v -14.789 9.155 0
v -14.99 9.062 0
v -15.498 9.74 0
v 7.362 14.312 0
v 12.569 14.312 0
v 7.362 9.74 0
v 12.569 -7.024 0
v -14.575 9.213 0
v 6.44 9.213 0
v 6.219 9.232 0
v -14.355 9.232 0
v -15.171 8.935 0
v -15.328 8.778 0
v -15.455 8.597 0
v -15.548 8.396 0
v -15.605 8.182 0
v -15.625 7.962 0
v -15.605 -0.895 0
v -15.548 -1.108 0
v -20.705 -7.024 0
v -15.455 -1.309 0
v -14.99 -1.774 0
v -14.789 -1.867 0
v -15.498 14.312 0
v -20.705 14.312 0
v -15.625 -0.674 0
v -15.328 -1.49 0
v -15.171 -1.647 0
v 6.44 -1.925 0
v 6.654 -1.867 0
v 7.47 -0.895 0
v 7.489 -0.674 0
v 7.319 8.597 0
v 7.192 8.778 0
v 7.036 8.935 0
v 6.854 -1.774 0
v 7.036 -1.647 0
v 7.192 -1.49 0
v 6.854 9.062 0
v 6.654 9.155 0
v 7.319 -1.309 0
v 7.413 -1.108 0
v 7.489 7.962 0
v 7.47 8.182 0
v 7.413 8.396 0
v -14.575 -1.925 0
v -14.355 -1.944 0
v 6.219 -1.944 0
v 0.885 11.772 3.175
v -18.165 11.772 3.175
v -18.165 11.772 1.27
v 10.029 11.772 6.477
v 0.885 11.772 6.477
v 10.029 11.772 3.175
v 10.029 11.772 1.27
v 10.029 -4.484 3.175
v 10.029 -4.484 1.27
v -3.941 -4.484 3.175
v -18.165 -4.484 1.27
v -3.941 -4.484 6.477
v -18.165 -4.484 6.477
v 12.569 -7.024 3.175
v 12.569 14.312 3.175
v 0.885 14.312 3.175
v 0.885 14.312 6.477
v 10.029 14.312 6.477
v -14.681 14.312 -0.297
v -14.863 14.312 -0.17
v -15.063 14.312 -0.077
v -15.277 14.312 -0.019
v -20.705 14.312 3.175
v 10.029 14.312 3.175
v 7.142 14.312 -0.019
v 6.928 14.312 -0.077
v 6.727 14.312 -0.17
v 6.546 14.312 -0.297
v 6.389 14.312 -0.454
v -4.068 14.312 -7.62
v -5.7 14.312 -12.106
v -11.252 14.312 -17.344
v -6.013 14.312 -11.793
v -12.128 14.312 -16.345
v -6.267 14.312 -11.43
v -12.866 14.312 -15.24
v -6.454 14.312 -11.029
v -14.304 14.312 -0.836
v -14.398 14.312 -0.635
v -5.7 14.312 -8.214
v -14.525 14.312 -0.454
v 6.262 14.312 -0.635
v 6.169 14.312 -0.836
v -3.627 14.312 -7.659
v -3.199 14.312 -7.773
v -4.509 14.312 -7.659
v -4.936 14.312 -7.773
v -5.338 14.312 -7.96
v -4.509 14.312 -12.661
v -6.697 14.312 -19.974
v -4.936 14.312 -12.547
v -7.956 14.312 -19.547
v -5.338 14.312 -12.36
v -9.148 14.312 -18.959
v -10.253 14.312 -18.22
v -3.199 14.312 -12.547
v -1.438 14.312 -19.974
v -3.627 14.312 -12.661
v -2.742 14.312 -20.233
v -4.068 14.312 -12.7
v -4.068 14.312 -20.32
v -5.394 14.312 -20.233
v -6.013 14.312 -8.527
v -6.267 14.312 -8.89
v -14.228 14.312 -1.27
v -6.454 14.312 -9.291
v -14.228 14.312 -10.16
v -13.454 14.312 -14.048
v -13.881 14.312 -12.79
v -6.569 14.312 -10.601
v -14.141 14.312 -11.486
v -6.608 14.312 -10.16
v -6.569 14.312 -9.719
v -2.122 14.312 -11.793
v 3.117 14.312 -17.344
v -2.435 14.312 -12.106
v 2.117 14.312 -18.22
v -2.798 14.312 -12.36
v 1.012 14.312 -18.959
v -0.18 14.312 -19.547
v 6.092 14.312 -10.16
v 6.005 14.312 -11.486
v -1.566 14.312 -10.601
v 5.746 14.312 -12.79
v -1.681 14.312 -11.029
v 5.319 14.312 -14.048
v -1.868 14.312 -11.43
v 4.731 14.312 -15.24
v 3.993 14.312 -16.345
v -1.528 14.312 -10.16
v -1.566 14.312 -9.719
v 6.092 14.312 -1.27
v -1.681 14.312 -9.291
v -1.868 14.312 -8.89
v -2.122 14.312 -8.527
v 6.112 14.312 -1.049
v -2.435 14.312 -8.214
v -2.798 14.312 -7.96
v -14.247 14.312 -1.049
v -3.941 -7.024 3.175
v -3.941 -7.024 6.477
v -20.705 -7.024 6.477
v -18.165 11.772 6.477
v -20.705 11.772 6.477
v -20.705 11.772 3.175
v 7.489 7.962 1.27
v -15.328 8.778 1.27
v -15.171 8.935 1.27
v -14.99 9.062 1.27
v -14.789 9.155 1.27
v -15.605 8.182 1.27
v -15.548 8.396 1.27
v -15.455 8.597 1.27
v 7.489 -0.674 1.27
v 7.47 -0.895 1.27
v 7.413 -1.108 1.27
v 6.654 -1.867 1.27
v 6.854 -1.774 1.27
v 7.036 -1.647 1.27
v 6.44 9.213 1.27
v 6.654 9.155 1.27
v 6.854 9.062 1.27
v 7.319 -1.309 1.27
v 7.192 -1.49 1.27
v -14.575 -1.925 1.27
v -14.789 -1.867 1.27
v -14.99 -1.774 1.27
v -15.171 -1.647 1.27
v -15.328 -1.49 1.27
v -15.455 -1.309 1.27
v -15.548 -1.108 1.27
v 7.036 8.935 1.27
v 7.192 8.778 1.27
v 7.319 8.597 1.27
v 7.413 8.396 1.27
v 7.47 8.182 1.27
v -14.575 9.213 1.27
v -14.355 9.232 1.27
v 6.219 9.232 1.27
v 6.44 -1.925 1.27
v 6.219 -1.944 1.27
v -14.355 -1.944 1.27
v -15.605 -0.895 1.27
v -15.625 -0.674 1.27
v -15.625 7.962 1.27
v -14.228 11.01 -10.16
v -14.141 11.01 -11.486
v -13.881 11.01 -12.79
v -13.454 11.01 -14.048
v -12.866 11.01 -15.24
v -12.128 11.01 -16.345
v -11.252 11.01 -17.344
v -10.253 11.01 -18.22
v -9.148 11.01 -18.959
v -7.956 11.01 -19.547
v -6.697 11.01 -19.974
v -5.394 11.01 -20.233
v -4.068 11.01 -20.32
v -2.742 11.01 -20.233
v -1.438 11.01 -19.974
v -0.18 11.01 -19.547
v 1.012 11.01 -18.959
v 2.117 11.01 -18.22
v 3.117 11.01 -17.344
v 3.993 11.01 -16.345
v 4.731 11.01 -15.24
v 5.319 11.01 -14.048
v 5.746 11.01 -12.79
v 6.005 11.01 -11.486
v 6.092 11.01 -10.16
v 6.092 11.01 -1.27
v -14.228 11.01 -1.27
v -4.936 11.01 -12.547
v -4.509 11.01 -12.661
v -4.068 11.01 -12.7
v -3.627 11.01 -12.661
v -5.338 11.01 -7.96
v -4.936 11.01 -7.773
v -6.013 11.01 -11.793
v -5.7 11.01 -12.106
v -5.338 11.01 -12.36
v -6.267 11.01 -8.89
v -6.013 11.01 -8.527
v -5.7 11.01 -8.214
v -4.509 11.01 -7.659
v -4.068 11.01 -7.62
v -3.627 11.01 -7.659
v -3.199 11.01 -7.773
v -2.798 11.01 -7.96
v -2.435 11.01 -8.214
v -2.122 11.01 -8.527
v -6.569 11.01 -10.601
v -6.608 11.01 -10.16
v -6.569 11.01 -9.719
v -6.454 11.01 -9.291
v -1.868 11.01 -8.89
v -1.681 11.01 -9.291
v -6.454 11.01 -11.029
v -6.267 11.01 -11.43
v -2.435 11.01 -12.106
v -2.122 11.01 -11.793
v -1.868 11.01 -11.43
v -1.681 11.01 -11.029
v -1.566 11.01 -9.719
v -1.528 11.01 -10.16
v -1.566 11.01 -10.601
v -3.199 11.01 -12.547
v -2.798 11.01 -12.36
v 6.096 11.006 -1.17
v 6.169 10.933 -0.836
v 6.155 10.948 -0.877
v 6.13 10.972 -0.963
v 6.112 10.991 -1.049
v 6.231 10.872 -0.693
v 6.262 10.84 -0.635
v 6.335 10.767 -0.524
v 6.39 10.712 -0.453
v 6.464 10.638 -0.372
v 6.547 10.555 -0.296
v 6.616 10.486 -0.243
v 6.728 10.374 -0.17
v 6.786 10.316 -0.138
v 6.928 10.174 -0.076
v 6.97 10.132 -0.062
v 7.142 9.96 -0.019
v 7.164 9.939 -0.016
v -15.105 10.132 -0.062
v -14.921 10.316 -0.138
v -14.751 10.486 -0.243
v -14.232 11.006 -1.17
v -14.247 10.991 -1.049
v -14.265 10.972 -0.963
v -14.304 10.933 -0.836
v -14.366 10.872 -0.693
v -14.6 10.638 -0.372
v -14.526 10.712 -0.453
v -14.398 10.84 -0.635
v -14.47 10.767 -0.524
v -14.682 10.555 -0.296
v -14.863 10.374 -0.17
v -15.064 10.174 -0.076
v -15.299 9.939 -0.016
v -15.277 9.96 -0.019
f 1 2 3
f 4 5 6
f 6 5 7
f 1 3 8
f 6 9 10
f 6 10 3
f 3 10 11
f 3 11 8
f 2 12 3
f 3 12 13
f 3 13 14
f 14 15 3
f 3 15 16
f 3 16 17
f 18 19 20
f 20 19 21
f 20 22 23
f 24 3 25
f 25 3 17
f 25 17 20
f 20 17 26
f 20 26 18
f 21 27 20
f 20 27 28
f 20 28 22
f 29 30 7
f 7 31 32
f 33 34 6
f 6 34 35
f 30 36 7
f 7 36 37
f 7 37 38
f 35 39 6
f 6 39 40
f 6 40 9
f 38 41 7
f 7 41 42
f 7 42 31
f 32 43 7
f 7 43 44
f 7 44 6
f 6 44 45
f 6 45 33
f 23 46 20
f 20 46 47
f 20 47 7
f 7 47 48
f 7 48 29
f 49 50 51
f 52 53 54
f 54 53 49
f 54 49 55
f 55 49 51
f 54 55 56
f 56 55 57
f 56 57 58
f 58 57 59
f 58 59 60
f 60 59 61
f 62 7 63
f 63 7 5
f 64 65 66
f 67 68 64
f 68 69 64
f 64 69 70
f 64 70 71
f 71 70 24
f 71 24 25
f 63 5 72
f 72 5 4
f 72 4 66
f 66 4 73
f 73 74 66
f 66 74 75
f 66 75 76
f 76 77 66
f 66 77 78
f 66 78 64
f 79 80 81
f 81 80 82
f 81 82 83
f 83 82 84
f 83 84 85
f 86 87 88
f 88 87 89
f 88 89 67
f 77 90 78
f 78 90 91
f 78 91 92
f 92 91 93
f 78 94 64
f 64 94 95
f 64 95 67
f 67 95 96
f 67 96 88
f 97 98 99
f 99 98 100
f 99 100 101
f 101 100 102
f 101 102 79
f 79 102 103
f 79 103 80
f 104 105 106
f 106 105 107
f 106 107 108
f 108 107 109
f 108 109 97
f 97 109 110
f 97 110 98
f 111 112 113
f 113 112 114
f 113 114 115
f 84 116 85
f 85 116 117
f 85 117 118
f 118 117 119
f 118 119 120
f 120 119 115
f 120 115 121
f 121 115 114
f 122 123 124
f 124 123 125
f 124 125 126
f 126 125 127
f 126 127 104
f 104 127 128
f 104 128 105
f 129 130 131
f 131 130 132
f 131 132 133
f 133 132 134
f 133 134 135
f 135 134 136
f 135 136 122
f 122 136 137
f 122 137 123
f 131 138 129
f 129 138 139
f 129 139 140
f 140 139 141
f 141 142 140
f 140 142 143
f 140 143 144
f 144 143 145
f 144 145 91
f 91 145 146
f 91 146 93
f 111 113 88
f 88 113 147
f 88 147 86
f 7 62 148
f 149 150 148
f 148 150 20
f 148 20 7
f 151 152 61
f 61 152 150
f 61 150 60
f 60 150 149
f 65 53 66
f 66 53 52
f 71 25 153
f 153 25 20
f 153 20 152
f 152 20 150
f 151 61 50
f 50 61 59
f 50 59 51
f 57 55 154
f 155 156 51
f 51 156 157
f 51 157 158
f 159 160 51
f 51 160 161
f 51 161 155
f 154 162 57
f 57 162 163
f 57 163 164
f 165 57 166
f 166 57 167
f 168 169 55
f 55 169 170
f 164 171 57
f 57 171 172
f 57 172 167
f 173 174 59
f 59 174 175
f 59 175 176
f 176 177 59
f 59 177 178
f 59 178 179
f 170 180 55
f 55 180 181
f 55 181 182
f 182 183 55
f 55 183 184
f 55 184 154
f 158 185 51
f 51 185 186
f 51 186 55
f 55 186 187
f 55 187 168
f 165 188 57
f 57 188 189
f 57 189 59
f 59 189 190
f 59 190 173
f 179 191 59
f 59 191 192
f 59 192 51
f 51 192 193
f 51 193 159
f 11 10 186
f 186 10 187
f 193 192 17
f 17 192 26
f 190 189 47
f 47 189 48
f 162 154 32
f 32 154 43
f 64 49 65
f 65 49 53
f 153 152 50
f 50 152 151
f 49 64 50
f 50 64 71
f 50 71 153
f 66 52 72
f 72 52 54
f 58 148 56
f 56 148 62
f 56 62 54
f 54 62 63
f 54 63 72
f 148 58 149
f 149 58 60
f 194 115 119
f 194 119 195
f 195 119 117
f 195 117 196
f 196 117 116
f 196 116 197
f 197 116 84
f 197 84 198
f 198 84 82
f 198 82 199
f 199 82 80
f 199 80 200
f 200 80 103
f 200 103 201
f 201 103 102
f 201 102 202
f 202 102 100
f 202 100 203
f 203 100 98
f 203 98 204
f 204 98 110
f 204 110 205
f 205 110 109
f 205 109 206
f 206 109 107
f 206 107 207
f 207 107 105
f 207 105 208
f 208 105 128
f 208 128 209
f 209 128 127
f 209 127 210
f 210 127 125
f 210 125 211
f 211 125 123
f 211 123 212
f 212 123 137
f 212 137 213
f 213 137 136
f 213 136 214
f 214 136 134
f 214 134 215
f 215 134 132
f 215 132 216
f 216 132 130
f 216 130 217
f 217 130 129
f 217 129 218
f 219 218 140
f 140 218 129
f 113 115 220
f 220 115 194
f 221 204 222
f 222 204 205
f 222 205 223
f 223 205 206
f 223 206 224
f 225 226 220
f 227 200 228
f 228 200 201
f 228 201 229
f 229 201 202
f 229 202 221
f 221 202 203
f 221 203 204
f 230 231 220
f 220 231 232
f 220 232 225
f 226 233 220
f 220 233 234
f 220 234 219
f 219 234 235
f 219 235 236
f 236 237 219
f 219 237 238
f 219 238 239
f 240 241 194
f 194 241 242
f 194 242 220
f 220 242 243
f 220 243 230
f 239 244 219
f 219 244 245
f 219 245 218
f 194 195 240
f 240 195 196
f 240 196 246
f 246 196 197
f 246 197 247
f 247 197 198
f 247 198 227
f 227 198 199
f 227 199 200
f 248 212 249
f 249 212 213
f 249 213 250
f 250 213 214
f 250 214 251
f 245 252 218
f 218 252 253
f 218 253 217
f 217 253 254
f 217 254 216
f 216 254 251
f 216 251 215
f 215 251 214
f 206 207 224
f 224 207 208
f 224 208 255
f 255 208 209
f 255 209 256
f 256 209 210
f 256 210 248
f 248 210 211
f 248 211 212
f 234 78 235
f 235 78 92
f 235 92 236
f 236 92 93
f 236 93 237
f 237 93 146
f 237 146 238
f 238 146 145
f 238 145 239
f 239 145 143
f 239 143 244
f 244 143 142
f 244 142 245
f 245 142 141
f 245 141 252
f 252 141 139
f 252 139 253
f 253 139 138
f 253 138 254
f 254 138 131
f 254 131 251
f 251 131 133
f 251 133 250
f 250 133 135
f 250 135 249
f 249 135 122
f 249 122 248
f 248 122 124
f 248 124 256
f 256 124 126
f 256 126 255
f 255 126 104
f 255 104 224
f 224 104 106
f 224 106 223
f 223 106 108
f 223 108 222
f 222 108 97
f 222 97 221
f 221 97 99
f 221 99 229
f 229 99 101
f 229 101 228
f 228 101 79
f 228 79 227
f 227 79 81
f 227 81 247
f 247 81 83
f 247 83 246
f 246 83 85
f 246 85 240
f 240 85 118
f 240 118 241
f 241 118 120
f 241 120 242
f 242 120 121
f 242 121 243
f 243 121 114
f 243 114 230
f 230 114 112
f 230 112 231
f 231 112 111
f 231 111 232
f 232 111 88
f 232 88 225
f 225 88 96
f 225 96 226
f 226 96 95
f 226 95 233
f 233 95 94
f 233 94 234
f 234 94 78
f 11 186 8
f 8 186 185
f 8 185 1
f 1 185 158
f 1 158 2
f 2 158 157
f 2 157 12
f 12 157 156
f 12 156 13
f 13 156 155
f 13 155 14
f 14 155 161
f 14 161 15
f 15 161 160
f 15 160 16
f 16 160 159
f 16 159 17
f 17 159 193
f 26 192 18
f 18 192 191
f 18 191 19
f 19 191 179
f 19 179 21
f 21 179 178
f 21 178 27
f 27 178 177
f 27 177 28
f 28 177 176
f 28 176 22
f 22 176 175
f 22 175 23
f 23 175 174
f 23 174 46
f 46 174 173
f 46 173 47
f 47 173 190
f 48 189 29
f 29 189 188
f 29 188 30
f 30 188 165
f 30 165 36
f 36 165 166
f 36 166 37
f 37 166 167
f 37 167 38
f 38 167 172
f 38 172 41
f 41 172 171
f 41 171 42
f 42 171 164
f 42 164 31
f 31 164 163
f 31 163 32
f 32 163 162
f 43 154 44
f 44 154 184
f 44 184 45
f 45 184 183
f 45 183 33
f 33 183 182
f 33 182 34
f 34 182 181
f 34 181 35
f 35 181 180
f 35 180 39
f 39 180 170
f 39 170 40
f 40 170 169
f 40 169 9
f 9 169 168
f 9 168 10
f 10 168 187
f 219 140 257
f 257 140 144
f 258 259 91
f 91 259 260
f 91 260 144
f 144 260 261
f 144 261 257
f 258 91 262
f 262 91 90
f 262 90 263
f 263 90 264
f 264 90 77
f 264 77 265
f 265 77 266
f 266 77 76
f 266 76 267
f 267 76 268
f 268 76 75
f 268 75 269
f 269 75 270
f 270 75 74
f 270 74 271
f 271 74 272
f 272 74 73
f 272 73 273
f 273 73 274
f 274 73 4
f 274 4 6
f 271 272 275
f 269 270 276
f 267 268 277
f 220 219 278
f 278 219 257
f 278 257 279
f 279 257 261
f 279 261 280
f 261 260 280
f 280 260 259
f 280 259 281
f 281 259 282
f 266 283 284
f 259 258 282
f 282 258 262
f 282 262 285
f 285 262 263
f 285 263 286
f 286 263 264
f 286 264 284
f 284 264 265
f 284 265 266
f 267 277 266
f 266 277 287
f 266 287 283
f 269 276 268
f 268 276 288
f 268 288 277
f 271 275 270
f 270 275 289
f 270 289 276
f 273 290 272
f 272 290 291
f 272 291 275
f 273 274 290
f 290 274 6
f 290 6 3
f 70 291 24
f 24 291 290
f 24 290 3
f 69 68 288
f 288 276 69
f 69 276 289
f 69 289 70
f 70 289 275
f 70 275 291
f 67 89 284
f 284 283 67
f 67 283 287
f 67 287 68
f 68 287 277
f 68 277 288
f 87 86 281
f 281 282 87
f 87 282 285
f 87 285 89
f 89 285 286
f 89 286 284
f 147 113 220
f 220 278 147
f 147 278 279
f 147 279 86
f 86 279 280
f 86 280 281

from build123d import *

# Parameters (mm, degrees)
SKETCH1_W           = 28.194
SKETCH1_H           = 2.54
BOSS_EXTRUDE1_DEPTH = 6.477
SKETCH2_W           = 28.194
SKETCH2_H           = 16.256
SKETCH2_W_2         = 23.114
SKETCH2_H_2         = 11.176
BOSS_EXTRUDE2_DEPTH = 1.27
SKETCH3_W           = 21.59
SKETCH3_H           = 2.54
SKETCH3_W_2         = 2.54
SKETCH3_H_2         = 18.796
SKETCH3_W_3         = 13.97
CUT_EXTRUDE1_DEPTH  = 3.302
SKETCH4_R           = 2.54
BOSS_EXTRUDE3_DEPTH = 3.302
FILLET4_R           = 1.27


with BuildPart() as part:
    # Sketch1 → Boss-Extrude1 (new body)
    with BuildSketch(Plane.XY):
        with Locations((-4.067663462, 13.041923077)):
            Rectangle(SKETCH1_W, SKETCH1_H)
        Polygon((-18.164663462, 14.311923077), (-20.704663462, 14.311923077), (-20.704663462, -7.024076923), (12.569336538, -7.024076923), (12.569336538, 14.311923077), (10.029336538, 14.311923077), (10.029336538, 11.771923077), (10.029336538, -4.484076923), (-18.164663462, -4.484076923), (-18.164663462, 11.771923077), align=None)
    extrude(amount=BOSS_EXTRUDE1_DEPTH)

    # Sketch2 → Boss-Extrude2 (add)
    with BuildSketch(Plane(origin=(0, 0, 0), x_dir=(-1, 0, 0), z_dir=(0, 0, -1))):
        with Locations((4.067663462, 3.643923077)):
            Rectangle(SKETCH2_W, SKETCH2_H)
        with Locations((4.067663462, 3.643923077)):
            Rectangle(SKETCH2_W_2, SKETCH2_H_2, mode=Mode.SUBTRACT)
    extrude(amount=-BOSS_EXTRUDE2_DEPTH)

    # Sketch3 → Cut-Extrude1 (cut)
    with BuildSketch(Plane.XY.offset(6.477)):
        with Locations((-9.909663462, 13.041923077)):
            Rectangle(SKETCH3_W, SKETCH3_H)
        with Locations((11.299336538, 4.913923077)):
            Rectangle(SKETCH3_W_2, SKETCH3_H_2)
        with Locations((11.299336538, -5.754076923)):
            Rectangle(SKETCH3_W_2, SKETCH3_H)
        with Locations((3.044336538, -5.754076923)):
            Rectangle(SKETCH3_W_3, SKETCH3_H)
    extrude(amount=-CUT_EXTRUDE1_DEPTH, mode=Mode.SUBTRACT)

    # Sketch4 → Boss-Extrude3 (add)
    with BuildSketch(Plane(origin=(0, 14.311923077, 0), x_dir=(1, 0, 0), z_dir=(0, 1, 0))):
        with BuildLine():
            Line((-14.227663462, 10.16), (-14.227663462, 0))
            Line((-14.227663462, 0), (6.092336538, 0))
            Line((6.092336538, 0), (6.092336538, 10.16))
            ThreePointArc((6.092336538, 10.16), (-4.067663462, 20.32), (-14.227663462, 10.16))
        make_face()
        with Locations(Location((-4.067663462, 10.16, 0), (0, 0, 270))):
            Circle(SKETCH4_R, mode=Mode.SUBTRACT)
    extrude(amount=-BOSS_EXTRUDE3_DEPTH)

    # Fillet4
    fillet4_edges = [part.edges().sort_by_distance(p)[0] for p in [
        (-4.067663462, 11.009923077, 0),
        (6.092336538, 12.660923077, 0),
        (-14.227663462, 12.660923077, 0),
        (-15.624663462, 9.231923077, 0.635),
        (-15.624663462, -1.944076923, 0.635),
        (7.489336538, -1.944076923, 0.635),
        (7.489336538, 9.231923077, 0.635),
    ]]
    fillet(fillet4_edges, radius=FILLET4_R)


solid = part.part
